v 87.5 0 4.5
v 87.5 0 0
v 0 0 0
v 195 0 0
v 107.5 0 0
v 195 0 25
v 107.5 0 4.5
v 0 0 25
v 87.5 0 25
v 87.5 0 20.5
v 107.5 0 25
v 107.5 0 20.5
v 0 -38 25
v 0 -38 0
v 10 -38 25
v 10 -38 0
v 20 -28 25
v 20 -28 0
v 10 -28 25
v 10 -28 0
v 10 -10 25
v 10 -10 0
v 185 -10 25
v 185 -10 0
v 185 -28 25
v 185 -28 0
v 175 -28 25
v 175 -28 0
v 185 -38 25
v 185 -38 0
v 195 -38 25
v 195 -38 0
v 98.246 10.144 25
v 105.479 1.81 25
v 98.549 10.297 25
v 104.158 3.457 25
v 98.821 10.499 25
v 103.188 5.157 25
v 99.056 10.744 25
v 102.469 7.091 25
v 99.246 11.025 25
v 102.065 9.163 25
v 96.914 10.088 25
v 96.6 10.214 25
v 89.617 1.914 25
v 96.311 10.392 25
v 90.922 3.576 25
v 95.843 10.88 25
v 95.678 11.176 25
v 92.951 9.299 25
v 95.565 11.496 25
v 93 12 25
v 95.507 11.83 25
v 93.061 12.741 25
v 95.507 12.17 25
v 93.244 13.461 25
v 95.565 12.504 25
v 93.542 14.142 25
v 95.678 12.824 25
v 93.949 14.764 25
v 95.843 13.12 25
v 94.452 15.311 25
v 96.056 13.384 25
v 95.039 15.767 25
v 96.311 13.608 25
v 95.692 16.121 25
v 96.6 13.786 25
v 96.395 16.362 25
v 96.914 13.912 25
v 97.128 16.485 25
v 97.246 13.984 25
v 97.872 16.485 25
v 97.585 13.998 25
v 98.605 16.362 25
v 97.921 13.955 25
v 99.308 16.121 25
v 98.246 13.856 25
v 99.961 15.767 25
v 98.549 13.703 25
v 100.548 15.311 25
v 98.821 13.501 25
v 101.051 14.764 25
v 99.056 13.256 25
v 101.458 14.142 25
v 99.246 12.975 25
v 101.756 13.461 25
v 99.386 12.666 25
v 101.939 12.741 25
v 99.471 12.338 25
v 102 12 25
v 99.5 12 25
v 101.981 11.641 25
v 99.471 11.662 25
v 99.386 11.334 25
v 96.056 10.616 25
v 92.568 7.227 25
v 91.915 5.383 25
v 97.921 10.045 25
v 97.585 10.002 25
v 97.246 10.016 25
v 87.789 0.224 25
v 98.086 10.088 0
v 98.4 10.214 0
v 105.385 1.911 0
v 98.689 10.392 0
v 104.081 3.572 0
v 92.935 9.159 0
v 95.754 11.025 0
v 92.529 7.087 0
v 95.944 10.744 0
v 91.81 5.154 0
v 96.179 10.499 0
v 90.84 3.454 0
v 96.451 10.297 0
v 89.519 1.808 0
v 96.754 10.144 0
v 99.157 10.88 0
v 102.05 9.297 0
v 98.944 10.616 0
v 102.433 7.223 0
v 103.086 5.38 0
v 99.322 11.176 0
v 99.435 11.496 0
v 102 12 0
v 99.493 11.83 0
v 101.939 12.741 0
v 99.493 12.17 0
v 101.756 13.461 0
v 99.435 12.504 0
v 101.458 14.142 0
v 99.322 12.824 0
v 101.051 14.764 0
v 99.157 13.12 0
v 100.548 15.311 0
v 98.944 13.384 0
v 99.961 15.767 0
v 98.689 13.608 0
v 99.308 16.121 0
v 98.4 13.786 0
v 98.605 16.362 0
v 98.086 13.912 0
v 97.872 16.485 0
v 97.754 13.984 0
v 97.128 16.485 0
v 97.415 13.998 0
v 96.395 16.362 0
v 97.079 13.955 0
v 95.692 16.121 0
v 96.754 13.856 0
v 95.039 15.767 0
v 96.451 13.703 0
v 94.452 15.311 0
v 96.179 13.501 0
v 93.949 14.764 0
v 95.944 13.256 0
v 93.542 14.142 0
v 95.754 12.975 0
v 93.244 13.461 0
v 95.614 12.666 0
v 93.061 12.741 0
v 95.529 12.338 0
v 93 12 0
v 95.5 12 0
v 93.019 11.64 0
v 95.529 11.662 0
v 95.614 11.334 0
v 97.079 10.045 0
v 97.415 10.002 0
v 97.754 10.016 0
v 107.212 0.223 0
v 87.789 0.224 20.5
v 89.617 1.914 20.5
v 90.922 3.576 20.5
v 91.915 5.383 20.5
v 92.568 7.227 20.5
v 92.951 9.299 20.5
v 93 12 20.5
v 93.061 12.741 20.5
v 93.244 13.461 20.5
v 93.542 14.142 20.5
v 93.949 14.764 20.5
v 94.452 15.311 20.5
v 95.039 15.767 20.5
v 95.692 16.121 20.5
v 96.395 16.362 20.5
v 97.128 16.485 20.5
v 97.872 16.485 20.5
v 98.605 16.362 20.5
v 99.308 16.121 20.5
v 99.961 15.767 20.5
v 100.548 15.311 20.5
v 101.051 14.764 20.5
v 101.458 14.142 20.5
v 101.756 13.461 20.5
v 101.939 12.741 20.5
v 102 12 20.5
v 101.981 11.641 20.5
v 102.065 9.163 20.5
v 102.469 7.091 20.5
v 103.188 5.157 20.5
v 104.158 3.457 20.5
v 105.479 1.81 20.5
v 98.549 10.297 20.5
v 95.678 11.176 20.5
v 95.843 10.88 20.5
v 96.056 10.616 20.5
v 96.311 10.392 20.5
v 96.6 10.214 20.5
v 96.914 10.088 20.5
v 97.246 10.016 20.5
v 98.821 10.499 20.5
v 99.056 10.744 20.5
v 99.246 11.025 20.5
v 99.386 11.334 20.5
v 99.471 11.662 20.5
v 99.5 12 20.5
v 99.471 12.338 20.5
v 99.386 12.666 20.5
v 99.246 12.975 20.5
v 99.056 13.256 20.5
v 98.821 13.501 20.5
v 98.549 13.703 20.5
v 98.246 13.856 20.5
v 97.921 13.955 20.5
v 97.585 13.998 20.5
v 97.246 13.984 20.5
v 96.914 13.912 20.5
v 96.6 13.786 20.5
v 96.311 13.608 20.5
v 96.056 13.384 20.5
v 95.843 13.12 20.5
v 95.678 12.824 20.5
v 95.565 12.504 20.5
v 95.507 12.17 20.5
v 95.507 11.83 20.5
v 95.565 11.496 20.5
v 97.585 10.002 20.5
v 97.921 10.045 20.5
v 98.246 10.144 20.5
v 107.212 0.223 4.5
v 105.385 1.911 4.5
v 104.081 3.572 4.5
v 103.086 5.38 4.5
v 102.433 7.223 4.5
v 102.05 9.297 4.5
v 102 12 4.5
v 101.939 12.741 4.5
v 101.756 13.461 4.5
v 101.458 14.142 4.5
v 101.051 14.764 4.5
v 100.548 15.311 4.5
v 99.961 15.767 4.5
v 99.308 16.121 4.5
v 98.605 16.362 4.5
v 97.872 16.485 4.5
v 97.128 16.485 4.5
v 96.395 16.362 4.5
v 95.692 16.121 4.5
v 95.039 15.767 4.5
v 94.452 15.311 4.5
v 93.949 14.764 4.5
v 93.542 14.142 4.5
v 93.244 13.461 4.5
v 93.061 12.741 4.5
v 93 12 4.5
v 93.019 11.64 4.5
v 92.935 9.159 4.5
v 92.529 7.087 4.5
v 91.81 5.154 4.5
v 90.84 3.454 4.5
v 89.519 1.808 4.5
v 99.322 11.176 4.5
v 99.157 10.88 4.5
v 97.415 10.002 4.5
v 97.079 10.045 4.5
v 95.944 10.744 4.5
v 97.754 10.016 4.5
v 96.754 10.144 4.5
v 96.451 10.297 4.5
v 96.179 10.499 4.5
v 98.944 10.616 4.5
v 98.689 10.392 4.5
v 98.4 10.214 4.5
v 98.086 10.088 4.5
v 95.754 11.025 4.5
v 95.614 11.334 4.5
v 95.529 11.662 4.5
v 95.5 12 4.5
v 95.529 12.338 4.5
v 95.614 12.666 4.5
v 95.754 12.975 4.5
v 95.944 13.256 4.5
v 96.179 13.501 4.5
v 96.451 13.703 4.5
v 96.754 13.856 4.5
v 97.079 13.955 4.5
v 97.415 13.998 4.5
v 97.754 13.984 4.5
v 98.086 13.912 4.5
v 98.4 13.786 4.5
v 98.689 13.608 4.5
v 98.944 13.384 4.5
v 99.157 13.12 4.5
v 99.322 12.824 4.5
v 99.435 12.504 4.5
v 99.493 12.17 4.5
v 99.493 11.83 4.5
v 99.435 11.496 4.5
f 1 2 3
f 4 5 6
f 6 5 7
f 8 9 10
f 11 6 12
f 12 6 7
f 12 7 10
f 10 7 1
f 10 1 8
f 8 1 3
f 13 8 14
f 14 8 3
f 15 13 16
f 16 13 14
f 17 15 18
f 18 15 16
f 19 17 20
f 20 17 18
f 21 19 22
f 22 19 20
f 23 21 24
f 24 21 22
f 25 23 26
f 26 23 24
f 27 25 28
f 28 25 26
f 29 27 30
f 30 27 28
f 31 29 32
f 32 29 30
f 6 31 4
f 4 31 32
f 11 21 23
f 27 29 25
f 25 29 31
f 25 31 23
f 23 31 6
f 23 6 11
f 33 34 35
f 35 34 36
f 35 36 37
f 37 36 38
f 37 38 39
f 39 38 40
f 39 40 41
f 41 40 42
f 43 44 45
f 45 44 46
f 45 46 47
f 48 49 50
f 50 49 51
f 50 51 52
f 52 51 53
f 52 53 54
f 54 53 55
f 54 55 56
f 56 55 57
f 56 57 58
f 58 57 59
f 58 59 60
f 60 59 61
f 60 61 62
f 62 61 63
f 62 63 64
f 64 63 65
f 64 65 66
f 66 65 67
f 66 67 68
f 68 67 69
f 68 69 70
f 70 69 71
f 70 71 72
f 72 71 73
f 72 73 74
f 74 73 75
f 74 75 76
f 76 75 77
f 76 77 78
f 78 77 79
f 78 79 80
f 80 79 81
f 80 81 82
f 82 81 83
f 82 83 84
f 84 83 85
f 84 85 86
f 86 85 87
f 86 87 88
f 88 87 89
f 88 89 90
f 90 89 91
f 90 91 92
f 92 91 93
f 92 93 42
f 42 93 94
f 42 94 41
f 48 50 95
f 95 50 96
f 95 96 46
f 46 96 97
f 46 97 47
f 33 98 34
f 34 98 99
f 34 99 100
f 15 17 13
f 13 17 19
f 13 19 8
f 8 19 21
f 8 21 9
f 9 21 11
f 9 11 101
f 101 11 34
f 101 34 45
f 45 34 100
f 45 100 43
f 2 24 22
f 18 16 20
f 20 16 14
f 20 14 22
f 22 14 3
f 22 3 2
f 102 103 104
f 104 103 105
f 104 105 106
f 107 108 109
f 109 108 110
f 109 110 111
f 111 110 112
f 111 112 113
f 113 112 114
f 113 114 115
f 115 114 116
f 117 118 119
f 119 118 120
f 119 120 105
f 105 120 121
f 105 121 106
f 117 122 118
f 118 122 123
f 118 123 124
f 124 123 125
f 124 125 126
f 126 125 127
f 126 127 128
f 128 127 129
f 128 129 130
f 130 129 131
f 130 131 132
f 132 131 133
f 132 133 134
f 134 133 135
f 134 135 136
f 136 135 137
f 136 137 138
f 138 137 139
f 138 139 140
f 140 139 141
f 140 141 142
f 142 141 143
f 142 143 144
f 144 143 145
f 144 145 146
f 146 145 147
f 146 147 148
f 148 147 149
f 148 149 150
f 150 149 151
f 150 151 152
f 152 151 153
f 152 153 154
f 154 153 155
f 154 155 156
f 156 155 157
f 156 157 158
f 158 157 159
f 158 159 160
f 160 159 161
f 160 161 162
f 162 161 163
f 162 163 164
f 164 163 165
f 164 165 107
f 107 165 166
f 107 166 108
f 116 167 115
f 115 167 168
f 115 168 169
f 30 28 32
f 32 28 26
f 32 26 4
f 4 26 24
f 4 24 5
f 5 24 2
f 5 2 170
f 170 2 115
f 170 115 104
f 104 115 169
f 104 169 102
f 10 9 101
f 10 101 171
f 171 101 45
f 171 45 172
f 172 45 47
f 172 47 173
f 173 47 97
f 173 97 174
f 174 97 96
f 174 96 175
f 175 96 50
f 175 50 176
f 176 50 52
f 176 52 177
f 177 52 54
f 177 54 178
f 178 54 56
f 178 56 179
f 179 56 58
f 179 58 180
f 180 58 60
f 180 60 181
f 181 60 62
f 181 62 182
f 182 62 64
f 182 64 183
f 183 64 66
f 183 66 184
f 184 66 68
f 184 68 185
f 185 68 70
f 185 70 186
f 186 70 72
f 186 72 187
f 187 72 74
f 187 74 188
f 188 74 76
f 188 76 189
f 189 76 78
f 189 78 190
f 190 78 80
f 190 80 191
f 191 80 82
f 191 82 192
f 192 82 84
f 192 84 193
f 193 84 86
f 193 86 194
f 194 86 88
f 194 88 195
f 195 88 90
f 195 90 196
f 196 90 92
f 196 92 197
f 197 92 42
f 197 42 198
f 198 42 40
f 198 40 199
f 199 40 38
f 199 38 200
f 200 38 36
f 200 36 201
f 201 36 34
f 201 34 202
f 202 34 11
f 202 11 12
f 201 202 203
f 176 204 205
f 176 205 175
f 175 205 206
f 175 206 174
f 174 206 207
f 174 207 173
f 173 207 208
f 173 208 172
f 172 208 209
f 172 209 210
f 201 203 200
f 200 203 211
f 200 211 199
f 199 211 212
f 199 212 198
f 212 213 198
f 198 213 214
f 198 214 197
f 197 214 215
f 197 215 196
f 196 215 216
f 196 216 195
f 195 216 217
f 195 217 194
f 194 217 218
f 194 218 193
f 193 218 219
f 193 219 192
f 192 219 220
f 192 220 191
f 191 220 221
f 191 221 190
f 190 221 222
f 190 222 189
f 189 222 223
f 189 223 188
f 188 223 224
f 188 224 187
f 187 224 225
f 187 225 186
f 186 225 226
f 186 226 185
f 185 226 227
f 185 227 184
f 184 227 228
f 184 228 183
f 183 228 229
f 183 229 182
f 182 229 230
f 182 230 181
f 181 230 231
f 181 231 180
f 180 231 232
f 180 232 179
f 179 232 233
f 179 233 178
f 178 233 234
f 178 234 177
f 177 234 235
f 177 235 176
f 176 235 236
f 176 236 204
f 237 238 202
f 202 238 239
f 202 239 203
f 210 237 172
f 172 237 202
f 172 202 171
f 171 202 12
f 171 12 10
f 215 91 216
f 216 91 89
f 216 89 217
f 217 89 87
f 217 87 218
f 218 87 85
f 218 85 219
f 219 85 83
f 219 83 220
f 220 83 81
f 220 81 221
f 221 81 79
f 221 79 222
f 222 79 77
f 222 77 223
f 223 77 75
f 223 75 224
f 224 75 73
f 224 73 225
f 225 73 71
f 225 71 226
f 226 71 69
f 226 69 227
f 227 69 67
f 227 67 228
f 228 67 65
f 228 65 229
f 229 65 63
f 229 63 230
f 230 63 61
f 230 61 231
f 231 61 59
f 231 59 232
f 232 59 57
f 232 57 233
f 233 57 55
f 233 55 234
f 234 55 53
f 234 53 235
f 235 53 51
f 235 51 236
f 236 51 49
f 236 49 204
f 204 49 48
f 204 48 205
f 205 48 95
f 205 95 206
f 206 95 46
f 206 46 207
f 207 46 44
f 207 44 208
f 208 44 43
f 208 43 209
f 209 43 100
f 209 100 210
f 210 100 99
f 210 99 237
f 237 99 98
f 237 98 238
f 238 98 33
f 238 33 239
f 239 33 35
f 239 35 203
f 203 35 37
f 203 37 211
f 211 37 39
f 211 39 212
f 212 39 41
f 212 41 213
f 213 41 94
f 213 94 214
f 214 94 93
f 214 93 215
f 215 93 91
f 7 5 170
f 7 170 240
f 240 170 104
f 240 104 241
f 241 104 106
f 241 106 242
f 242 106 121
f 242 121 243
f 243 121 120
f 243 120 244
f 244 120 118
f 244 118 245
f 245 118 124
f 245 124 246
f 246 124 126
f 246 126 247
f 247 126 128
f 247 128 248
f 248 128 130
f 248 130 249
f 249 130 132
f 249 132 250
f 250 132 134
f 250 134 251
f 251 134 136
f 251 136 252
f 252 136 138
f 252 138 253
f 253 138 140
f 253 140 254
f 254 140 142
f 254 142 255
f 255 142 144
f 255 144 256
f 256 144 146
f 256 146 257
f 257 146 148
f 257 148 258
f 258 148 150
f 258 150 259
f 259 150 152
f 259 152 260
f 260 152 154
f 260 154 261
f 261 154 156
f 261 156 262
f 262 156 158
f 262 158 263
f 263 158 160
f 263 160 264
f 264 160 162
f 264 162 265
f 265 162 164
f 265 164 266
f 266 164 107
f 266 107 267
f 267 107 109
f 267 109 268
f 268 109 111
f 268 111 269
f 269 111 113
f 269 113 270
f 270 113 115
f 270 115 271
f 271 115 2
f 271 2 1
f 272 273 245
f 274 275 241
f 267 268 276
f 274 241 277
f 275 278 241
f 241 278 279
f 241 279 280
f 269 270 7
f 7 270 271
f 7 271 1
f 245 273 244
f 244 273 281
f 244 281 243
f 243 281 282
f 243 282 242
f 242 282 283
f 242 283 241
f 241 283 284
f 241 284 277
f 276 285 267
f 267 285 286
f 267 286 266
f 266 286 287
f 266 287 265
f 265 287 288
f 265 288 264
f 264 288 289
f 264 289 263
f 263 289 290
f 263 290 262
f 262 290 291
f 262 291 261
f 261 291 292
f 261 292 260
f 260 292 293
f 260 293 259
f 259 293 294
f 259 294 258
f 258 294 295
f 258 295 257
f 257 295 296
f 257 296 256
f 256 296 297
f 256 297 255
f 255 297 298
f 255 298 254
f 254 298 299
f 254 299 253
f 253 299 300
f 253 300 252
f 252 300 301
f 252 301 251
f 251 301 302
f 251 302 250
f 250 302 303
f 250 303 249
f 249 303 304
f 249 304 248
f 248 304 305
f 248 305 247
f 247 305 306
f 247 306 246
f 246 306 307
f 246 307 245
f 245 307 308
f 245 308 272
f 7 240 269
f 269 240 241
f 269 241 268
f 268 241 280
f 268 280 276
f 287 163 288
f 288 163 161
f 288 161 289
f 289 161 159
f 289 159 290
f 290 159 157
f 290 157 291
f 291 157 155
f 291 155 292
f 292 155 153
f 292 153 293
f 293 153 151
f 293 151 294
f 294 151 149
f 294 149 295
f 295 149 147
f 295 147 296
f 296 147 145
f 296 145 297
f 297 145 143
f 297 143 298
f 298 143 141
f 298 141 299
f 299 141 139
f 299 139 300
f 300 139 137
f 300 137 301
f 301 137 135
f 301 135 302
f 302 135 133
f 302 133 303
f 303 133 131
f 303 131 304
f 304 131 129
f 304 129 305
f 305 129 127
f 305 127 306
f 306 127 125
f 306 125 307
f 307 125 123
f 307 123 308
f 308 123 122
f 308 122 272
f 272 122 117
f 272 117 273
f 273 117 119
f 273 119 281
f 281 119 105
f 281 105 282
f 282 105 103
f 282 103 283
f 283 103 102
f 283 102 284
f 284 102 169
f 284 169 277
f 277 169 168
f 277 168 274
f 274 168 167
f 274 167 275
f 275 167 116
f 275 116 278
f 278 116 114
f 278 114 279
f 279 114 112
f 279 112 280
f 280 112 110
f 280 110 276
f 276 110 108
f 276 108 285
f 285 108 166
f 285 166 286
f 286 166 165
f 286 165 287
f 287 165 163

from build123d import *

# Parameters (mm, degrees)
BOSS_EXTRU_1_DEPTH = 25
ESQUISSE2_R        = 2
BOSS_EXTRU_2_DEPTH = 4.5
ESQUISSE4_R        = 2
BOSS_EXTRU_3_DEPTH = 4.5


with BuildPart() as part:
    # Esquisse1 → Boss.-Extru.1 (new body)
    with BuildSketch(Plane.XY):
        Polygon((0, 0), (195, 0), (195, -38), (185, -38), (175, -28), (185, -28), (185, -10), (10, -10), (10, -28), (20, -28), (10, -38), (0, -38), align=None)
    extrude(amount=BOSS_EXTRU_1_DEPTH)

    # Esquisse2 → Boss.-Extru.2 (add)
    with BuildSketch(Plane.XY.offset(25)):
        with BuildLine():
            Line((97.5, 0), (87.5, 0))
            add(Edge.make_bspline(
                [(93, 12), (93.473540625, 4.530107825), (87.5, 0)],
                knots=[0, 0, 0, 1, 1, 1], degree=2))
            ThreePointArc((93, 12), (97.5, 16.5), (102, 12))
            add(Edge.make_bspline(
                [(102, 12), (101.526459375, 4.530107825), (107.5, 0)],
                knots=[0, 0, 0, 1, 1, 1], degree=2))
            Line((107.5, 0), (97.5, 0))
        make_face()
        with Locations((97.5, 12)):
            Circle(ESQUISSE2_R, mode=Mode.SUBTRACT)
    extrude(amount=-BOSS_EXTRU_2_DEPTH)

    # Esquisse4 → Boss.-Extru.3 (add)
    with BuildSketch(Plane(origin=(0, 0, 0), x_dir=(-1, 0, 0), z_dir=(0, 0, -1))):
        with BuildLine():
            Line((-97.5, 0), (-107.5, 0))
            add(Edge.make_bspline(
                [(-102, 12), (-101.527789756, 4.527189734), (-107.5, 0)],
                knots=[0, 0, 0, 1, 1, 1], degree=2))
            ThreePointArc((-102, 12), (-97.5, 16.5), (-93, 12))
            add(Edge.make_bspline(
                [(-93, 12), (-93.472210244, 4.527189734), (-87.5, 0)],
                knots=[0, 0, 0, 1, 1, 1], degree=2))
            Line((-87.5, 0), (-97.5, 0))
        make_face()
        with Locations((-97.5, 12)):
            Circle(ESQUISSE4_R, mode=Mode.SUBTRACT)
    extrude(amount=-BOSS_EXTRU_3_DEPTH)


solid = part.part
